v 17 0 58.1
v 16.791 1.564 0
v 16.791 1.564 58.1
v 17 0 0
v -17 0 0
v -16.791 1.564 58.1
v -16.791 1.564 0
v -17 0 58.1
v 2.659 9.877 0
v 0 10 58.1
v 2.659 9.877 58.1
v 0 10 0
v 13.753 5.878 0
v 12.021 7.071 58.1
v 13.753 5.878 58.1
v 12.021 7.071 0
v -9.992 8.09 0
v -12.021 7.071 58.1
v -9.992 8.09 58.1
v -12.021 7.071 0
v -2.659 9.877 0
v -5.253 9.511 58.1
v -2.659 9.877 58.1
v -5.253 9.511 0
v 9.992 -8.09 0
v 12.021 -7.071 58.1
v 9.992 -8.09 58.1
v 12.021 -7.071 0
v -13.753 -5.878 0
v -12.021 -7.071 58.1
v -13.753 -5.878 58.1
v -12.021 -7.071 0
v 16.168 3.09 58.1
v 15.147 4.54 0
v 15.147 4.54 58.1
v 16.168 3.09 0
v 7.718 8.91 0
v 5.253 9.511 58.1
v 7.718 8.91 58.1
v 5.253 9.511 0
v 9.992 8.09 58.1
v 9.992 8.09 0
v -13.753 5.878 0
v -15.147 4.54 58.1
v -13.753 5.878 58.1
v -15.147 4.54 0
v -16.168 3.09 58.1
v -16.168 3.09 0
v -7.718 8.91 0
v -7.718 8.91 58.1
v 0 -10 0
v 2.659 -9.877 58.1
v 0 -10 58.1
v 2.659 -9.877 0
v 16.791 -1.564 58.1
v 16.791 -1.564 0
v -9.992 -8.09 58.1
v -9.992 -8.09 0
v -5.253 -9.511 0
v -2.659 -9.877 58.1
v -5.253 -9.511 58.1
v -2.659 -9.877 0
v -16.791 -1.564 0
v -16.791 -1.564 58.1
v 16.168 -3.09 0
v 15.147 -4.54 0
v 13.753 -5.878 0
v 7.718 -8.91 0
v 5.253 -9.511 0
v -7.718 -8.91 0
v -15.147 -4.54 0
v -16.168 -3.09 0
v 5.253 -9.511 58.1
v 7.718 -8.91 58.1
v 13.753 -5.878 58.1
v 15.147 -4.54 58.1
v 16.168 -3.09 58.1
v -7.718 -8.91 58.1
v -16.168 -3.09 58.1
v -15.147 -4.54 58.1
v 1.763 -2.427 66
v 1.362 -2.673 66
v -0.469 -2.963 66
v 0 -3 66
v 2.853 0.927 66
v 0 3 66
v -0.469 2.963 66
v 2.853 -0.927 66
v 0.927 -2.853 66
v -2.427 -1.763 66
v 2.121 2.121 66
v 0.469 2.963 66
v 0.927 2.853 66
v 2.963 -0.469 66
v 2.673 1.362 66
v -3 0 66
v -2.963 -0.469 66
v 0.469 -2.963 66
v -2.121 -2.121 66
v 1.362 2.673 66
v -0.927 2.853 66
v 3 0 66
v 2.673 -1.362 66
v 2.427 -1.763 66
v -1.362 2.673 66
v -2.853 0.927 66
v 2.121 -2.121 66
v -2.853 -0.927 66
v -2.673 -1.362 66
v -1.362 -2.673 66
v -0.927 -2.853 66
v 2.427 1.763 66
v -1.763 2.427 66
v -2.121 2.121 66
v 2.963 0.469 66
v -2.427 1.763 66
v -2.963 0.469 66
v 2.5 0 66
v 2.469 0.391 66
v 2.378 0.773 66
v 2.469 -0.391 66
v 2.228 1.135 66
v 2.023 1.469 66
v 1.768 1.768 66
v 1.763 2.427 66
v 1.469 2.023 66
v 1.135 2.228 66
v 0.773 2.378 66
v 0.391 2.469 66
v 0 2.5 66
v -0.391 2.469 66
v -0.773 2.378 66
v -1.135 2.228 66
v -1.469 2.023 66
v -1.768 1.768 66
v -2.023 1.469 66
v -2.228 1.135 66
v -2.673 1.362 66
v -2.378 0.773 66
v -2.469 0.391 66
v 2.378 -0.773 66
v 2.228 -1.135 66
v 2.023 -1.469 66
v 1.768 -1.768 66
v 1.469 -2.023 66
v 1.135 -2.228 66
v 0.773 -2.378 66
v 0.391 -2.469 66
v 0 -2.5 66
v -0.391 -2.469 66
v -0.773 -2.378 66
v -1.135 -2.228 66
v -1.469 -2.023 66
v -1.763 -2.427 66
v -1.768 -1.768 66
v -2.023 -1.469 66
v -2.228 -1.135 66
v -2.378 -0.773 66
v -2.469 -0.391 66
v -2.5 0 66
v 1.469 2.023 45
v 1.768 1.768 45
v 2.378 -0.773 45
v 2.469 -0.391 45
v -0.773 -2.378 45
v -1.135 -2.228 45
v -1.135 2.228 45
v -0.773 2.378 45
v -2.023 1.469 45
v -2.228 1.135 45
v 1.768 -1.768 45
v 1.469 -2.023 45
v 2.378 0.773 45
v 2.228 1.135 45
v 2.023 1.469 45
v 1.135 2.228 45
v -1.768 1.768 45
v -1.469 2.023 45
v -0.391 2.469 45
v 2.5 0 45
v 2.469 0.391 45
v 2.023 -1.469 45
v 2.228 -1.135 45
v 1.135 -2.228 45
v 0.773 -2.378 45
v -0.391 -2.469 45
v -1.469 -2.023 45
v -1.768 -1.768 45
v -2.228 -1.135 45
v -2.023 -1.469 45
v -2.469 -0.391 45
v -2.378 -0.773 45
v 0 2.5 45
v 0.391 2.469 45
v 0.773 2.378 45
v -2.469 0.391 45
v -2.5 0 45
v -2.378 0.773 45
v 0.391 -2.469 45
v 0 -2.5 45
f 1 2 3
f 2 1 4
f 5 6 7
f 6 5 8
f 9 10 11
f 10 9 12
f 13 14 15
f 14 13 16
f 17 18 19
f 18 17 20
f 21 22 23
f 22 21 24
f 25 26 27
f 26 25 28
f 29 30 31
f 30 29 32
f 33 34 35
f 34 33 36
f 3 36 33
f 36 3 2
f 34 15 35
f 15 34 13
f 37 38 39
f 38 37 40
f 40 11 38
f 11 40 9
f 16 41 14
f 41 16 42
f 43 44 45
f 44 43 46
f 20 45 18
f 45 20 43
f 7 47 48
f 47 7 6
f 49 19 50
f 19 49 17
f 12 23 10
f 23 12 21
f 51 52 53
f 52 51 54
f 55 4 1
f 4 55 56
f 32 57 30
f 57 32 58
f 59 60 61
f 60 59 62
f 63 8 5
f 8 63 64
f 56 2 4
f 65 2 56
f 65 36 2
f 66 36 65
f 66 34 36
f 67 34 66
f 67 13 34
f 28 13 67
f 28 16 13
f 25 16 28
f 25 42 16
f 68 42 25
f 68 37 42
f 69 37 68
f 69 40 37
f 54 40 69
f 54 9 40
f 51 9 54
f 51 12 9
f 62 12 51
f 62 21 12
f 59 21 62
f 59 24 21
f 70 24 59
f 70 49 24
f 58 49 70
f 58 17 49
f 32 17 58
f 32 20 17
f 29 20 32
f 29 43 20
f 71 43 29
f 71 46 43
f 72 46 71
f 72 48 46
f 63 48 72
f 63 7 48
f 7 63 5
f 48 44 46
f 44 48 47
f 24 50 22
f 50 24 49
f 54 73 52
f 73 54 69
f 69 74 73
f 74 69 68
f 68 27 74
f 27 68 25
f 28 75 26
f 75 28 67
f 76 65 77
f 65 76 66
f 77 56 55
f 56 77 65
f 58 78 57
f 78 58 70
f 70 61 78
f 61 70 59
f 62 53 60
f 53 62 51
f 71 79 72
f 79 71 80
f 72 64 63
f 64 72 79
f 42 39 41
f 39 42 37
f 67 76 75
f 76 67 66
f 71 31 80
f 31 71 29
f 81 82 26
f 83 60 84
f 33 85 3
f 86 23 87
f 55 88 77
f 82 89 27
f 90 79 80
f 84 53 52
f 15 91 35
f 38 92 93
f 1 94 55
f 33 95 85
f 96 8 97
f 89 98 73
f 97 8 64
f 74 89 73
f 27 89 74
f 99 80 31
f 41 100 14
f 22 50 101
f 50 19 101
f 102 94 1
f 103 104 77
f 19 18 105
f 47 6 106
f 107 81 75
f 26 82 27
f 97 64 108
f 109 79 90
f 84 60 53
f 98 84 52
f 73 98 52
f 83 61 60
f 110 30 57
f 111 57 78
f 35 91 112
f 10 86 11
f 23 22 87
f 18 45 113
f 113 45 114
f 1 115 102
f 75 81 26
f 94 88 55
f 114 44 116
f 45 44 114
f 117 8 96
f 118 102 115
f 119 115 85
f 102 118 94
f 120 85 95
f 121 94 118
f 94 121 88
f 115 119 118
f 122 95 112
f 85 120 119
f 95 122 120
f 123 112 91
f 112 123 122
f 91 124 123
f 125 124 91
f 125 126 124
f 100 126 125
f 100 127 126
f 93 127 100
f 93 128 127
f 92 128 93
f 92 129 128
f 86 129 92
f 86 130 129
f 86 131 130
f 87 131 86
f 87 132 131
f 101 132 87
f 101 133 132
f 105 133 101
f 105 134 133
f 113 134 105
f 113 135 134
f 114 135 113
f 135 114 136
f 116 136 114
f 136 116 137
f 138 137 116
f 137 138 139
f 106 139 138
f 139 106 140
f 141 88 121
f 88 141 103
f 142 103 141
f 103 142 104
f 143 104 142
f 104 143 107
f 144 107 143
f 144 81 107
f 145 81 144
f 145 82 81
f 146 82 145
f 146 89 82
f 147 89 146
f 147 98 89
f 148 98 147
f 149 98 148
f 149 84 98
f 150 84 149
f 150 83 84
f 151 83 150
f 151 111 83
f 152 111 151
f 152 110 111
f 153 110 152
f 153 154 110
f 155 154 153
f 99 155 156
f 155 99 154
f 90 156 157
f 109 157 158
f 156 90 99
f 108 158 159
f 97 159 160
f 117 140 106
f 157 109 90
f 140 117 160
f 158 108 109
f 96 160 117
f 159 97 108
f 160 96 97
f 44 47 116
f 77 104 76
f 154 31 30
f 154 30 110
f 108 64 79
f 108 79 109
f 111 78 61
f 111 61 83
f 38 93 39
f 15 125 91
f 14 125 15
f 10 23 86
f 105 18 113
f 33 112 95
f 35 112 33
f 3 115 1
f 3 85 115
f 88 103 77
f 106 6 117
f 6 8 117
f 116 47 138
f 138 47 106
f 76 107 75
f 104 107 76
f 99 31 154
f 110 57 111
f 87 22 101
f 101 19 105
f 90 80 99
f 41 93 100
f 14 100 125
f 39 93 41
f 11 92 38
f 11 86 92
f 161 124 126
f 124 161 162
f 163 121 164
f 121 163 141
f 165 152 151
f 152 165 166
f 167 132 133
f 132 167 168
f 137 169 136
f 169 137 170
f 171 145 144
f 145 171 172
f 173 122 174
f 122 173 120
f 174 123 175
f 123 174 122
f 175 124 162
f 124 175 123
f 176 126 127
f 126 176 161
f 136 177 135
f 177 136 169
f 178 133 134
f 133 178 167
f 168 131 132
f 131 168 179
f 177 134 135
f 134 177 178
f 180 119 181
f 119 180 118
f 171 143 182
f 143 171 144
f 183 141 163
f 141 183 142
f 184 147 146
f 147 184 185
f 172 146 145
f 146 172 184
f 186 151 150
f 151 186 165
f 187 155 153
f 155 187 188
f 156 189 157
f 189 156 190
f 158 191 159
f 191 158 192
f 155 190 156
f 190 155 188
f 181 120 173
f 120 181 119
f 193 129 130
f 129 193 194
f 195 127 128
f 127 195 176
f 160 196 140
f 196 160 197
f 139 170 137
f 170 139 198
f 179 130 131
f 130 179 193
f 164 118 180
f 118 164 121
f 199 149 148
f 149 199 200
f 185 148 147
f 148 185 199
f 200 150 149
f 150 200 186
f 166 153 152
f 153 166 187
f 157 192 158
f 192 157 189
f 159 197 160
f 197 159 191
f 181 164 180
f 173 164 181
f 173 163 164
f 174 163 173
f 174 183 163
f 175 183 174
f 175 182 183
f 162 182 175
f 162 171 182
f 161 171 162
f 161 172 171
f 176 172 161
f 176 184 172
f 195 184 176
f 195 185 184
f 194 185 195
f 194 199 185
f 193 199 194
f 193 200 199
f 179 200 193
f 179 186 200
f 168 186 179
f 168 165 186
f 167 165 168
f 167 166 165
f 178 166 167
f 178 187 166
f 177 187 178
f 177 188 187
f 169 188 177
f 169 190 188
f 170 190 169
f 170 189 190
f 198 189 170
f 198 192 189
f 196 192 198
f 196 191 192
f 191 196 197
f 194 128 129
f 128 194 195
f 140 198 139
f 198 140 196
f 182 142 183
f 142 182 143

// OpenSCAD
$fn=40;


difference() {
    union() {
        scale([1.7,1,1]) cylinder(d=20, h=58);
        translate([0,0,58]) hull() {
            scale([1.7,1,1]) cylinder(d=20, h=0.1);
            translate([0,0,7]) cylinder(d=6, h=1);
        }
    }
    translate([0,0,50-5]) cylinder(d=5, h=25);
}
